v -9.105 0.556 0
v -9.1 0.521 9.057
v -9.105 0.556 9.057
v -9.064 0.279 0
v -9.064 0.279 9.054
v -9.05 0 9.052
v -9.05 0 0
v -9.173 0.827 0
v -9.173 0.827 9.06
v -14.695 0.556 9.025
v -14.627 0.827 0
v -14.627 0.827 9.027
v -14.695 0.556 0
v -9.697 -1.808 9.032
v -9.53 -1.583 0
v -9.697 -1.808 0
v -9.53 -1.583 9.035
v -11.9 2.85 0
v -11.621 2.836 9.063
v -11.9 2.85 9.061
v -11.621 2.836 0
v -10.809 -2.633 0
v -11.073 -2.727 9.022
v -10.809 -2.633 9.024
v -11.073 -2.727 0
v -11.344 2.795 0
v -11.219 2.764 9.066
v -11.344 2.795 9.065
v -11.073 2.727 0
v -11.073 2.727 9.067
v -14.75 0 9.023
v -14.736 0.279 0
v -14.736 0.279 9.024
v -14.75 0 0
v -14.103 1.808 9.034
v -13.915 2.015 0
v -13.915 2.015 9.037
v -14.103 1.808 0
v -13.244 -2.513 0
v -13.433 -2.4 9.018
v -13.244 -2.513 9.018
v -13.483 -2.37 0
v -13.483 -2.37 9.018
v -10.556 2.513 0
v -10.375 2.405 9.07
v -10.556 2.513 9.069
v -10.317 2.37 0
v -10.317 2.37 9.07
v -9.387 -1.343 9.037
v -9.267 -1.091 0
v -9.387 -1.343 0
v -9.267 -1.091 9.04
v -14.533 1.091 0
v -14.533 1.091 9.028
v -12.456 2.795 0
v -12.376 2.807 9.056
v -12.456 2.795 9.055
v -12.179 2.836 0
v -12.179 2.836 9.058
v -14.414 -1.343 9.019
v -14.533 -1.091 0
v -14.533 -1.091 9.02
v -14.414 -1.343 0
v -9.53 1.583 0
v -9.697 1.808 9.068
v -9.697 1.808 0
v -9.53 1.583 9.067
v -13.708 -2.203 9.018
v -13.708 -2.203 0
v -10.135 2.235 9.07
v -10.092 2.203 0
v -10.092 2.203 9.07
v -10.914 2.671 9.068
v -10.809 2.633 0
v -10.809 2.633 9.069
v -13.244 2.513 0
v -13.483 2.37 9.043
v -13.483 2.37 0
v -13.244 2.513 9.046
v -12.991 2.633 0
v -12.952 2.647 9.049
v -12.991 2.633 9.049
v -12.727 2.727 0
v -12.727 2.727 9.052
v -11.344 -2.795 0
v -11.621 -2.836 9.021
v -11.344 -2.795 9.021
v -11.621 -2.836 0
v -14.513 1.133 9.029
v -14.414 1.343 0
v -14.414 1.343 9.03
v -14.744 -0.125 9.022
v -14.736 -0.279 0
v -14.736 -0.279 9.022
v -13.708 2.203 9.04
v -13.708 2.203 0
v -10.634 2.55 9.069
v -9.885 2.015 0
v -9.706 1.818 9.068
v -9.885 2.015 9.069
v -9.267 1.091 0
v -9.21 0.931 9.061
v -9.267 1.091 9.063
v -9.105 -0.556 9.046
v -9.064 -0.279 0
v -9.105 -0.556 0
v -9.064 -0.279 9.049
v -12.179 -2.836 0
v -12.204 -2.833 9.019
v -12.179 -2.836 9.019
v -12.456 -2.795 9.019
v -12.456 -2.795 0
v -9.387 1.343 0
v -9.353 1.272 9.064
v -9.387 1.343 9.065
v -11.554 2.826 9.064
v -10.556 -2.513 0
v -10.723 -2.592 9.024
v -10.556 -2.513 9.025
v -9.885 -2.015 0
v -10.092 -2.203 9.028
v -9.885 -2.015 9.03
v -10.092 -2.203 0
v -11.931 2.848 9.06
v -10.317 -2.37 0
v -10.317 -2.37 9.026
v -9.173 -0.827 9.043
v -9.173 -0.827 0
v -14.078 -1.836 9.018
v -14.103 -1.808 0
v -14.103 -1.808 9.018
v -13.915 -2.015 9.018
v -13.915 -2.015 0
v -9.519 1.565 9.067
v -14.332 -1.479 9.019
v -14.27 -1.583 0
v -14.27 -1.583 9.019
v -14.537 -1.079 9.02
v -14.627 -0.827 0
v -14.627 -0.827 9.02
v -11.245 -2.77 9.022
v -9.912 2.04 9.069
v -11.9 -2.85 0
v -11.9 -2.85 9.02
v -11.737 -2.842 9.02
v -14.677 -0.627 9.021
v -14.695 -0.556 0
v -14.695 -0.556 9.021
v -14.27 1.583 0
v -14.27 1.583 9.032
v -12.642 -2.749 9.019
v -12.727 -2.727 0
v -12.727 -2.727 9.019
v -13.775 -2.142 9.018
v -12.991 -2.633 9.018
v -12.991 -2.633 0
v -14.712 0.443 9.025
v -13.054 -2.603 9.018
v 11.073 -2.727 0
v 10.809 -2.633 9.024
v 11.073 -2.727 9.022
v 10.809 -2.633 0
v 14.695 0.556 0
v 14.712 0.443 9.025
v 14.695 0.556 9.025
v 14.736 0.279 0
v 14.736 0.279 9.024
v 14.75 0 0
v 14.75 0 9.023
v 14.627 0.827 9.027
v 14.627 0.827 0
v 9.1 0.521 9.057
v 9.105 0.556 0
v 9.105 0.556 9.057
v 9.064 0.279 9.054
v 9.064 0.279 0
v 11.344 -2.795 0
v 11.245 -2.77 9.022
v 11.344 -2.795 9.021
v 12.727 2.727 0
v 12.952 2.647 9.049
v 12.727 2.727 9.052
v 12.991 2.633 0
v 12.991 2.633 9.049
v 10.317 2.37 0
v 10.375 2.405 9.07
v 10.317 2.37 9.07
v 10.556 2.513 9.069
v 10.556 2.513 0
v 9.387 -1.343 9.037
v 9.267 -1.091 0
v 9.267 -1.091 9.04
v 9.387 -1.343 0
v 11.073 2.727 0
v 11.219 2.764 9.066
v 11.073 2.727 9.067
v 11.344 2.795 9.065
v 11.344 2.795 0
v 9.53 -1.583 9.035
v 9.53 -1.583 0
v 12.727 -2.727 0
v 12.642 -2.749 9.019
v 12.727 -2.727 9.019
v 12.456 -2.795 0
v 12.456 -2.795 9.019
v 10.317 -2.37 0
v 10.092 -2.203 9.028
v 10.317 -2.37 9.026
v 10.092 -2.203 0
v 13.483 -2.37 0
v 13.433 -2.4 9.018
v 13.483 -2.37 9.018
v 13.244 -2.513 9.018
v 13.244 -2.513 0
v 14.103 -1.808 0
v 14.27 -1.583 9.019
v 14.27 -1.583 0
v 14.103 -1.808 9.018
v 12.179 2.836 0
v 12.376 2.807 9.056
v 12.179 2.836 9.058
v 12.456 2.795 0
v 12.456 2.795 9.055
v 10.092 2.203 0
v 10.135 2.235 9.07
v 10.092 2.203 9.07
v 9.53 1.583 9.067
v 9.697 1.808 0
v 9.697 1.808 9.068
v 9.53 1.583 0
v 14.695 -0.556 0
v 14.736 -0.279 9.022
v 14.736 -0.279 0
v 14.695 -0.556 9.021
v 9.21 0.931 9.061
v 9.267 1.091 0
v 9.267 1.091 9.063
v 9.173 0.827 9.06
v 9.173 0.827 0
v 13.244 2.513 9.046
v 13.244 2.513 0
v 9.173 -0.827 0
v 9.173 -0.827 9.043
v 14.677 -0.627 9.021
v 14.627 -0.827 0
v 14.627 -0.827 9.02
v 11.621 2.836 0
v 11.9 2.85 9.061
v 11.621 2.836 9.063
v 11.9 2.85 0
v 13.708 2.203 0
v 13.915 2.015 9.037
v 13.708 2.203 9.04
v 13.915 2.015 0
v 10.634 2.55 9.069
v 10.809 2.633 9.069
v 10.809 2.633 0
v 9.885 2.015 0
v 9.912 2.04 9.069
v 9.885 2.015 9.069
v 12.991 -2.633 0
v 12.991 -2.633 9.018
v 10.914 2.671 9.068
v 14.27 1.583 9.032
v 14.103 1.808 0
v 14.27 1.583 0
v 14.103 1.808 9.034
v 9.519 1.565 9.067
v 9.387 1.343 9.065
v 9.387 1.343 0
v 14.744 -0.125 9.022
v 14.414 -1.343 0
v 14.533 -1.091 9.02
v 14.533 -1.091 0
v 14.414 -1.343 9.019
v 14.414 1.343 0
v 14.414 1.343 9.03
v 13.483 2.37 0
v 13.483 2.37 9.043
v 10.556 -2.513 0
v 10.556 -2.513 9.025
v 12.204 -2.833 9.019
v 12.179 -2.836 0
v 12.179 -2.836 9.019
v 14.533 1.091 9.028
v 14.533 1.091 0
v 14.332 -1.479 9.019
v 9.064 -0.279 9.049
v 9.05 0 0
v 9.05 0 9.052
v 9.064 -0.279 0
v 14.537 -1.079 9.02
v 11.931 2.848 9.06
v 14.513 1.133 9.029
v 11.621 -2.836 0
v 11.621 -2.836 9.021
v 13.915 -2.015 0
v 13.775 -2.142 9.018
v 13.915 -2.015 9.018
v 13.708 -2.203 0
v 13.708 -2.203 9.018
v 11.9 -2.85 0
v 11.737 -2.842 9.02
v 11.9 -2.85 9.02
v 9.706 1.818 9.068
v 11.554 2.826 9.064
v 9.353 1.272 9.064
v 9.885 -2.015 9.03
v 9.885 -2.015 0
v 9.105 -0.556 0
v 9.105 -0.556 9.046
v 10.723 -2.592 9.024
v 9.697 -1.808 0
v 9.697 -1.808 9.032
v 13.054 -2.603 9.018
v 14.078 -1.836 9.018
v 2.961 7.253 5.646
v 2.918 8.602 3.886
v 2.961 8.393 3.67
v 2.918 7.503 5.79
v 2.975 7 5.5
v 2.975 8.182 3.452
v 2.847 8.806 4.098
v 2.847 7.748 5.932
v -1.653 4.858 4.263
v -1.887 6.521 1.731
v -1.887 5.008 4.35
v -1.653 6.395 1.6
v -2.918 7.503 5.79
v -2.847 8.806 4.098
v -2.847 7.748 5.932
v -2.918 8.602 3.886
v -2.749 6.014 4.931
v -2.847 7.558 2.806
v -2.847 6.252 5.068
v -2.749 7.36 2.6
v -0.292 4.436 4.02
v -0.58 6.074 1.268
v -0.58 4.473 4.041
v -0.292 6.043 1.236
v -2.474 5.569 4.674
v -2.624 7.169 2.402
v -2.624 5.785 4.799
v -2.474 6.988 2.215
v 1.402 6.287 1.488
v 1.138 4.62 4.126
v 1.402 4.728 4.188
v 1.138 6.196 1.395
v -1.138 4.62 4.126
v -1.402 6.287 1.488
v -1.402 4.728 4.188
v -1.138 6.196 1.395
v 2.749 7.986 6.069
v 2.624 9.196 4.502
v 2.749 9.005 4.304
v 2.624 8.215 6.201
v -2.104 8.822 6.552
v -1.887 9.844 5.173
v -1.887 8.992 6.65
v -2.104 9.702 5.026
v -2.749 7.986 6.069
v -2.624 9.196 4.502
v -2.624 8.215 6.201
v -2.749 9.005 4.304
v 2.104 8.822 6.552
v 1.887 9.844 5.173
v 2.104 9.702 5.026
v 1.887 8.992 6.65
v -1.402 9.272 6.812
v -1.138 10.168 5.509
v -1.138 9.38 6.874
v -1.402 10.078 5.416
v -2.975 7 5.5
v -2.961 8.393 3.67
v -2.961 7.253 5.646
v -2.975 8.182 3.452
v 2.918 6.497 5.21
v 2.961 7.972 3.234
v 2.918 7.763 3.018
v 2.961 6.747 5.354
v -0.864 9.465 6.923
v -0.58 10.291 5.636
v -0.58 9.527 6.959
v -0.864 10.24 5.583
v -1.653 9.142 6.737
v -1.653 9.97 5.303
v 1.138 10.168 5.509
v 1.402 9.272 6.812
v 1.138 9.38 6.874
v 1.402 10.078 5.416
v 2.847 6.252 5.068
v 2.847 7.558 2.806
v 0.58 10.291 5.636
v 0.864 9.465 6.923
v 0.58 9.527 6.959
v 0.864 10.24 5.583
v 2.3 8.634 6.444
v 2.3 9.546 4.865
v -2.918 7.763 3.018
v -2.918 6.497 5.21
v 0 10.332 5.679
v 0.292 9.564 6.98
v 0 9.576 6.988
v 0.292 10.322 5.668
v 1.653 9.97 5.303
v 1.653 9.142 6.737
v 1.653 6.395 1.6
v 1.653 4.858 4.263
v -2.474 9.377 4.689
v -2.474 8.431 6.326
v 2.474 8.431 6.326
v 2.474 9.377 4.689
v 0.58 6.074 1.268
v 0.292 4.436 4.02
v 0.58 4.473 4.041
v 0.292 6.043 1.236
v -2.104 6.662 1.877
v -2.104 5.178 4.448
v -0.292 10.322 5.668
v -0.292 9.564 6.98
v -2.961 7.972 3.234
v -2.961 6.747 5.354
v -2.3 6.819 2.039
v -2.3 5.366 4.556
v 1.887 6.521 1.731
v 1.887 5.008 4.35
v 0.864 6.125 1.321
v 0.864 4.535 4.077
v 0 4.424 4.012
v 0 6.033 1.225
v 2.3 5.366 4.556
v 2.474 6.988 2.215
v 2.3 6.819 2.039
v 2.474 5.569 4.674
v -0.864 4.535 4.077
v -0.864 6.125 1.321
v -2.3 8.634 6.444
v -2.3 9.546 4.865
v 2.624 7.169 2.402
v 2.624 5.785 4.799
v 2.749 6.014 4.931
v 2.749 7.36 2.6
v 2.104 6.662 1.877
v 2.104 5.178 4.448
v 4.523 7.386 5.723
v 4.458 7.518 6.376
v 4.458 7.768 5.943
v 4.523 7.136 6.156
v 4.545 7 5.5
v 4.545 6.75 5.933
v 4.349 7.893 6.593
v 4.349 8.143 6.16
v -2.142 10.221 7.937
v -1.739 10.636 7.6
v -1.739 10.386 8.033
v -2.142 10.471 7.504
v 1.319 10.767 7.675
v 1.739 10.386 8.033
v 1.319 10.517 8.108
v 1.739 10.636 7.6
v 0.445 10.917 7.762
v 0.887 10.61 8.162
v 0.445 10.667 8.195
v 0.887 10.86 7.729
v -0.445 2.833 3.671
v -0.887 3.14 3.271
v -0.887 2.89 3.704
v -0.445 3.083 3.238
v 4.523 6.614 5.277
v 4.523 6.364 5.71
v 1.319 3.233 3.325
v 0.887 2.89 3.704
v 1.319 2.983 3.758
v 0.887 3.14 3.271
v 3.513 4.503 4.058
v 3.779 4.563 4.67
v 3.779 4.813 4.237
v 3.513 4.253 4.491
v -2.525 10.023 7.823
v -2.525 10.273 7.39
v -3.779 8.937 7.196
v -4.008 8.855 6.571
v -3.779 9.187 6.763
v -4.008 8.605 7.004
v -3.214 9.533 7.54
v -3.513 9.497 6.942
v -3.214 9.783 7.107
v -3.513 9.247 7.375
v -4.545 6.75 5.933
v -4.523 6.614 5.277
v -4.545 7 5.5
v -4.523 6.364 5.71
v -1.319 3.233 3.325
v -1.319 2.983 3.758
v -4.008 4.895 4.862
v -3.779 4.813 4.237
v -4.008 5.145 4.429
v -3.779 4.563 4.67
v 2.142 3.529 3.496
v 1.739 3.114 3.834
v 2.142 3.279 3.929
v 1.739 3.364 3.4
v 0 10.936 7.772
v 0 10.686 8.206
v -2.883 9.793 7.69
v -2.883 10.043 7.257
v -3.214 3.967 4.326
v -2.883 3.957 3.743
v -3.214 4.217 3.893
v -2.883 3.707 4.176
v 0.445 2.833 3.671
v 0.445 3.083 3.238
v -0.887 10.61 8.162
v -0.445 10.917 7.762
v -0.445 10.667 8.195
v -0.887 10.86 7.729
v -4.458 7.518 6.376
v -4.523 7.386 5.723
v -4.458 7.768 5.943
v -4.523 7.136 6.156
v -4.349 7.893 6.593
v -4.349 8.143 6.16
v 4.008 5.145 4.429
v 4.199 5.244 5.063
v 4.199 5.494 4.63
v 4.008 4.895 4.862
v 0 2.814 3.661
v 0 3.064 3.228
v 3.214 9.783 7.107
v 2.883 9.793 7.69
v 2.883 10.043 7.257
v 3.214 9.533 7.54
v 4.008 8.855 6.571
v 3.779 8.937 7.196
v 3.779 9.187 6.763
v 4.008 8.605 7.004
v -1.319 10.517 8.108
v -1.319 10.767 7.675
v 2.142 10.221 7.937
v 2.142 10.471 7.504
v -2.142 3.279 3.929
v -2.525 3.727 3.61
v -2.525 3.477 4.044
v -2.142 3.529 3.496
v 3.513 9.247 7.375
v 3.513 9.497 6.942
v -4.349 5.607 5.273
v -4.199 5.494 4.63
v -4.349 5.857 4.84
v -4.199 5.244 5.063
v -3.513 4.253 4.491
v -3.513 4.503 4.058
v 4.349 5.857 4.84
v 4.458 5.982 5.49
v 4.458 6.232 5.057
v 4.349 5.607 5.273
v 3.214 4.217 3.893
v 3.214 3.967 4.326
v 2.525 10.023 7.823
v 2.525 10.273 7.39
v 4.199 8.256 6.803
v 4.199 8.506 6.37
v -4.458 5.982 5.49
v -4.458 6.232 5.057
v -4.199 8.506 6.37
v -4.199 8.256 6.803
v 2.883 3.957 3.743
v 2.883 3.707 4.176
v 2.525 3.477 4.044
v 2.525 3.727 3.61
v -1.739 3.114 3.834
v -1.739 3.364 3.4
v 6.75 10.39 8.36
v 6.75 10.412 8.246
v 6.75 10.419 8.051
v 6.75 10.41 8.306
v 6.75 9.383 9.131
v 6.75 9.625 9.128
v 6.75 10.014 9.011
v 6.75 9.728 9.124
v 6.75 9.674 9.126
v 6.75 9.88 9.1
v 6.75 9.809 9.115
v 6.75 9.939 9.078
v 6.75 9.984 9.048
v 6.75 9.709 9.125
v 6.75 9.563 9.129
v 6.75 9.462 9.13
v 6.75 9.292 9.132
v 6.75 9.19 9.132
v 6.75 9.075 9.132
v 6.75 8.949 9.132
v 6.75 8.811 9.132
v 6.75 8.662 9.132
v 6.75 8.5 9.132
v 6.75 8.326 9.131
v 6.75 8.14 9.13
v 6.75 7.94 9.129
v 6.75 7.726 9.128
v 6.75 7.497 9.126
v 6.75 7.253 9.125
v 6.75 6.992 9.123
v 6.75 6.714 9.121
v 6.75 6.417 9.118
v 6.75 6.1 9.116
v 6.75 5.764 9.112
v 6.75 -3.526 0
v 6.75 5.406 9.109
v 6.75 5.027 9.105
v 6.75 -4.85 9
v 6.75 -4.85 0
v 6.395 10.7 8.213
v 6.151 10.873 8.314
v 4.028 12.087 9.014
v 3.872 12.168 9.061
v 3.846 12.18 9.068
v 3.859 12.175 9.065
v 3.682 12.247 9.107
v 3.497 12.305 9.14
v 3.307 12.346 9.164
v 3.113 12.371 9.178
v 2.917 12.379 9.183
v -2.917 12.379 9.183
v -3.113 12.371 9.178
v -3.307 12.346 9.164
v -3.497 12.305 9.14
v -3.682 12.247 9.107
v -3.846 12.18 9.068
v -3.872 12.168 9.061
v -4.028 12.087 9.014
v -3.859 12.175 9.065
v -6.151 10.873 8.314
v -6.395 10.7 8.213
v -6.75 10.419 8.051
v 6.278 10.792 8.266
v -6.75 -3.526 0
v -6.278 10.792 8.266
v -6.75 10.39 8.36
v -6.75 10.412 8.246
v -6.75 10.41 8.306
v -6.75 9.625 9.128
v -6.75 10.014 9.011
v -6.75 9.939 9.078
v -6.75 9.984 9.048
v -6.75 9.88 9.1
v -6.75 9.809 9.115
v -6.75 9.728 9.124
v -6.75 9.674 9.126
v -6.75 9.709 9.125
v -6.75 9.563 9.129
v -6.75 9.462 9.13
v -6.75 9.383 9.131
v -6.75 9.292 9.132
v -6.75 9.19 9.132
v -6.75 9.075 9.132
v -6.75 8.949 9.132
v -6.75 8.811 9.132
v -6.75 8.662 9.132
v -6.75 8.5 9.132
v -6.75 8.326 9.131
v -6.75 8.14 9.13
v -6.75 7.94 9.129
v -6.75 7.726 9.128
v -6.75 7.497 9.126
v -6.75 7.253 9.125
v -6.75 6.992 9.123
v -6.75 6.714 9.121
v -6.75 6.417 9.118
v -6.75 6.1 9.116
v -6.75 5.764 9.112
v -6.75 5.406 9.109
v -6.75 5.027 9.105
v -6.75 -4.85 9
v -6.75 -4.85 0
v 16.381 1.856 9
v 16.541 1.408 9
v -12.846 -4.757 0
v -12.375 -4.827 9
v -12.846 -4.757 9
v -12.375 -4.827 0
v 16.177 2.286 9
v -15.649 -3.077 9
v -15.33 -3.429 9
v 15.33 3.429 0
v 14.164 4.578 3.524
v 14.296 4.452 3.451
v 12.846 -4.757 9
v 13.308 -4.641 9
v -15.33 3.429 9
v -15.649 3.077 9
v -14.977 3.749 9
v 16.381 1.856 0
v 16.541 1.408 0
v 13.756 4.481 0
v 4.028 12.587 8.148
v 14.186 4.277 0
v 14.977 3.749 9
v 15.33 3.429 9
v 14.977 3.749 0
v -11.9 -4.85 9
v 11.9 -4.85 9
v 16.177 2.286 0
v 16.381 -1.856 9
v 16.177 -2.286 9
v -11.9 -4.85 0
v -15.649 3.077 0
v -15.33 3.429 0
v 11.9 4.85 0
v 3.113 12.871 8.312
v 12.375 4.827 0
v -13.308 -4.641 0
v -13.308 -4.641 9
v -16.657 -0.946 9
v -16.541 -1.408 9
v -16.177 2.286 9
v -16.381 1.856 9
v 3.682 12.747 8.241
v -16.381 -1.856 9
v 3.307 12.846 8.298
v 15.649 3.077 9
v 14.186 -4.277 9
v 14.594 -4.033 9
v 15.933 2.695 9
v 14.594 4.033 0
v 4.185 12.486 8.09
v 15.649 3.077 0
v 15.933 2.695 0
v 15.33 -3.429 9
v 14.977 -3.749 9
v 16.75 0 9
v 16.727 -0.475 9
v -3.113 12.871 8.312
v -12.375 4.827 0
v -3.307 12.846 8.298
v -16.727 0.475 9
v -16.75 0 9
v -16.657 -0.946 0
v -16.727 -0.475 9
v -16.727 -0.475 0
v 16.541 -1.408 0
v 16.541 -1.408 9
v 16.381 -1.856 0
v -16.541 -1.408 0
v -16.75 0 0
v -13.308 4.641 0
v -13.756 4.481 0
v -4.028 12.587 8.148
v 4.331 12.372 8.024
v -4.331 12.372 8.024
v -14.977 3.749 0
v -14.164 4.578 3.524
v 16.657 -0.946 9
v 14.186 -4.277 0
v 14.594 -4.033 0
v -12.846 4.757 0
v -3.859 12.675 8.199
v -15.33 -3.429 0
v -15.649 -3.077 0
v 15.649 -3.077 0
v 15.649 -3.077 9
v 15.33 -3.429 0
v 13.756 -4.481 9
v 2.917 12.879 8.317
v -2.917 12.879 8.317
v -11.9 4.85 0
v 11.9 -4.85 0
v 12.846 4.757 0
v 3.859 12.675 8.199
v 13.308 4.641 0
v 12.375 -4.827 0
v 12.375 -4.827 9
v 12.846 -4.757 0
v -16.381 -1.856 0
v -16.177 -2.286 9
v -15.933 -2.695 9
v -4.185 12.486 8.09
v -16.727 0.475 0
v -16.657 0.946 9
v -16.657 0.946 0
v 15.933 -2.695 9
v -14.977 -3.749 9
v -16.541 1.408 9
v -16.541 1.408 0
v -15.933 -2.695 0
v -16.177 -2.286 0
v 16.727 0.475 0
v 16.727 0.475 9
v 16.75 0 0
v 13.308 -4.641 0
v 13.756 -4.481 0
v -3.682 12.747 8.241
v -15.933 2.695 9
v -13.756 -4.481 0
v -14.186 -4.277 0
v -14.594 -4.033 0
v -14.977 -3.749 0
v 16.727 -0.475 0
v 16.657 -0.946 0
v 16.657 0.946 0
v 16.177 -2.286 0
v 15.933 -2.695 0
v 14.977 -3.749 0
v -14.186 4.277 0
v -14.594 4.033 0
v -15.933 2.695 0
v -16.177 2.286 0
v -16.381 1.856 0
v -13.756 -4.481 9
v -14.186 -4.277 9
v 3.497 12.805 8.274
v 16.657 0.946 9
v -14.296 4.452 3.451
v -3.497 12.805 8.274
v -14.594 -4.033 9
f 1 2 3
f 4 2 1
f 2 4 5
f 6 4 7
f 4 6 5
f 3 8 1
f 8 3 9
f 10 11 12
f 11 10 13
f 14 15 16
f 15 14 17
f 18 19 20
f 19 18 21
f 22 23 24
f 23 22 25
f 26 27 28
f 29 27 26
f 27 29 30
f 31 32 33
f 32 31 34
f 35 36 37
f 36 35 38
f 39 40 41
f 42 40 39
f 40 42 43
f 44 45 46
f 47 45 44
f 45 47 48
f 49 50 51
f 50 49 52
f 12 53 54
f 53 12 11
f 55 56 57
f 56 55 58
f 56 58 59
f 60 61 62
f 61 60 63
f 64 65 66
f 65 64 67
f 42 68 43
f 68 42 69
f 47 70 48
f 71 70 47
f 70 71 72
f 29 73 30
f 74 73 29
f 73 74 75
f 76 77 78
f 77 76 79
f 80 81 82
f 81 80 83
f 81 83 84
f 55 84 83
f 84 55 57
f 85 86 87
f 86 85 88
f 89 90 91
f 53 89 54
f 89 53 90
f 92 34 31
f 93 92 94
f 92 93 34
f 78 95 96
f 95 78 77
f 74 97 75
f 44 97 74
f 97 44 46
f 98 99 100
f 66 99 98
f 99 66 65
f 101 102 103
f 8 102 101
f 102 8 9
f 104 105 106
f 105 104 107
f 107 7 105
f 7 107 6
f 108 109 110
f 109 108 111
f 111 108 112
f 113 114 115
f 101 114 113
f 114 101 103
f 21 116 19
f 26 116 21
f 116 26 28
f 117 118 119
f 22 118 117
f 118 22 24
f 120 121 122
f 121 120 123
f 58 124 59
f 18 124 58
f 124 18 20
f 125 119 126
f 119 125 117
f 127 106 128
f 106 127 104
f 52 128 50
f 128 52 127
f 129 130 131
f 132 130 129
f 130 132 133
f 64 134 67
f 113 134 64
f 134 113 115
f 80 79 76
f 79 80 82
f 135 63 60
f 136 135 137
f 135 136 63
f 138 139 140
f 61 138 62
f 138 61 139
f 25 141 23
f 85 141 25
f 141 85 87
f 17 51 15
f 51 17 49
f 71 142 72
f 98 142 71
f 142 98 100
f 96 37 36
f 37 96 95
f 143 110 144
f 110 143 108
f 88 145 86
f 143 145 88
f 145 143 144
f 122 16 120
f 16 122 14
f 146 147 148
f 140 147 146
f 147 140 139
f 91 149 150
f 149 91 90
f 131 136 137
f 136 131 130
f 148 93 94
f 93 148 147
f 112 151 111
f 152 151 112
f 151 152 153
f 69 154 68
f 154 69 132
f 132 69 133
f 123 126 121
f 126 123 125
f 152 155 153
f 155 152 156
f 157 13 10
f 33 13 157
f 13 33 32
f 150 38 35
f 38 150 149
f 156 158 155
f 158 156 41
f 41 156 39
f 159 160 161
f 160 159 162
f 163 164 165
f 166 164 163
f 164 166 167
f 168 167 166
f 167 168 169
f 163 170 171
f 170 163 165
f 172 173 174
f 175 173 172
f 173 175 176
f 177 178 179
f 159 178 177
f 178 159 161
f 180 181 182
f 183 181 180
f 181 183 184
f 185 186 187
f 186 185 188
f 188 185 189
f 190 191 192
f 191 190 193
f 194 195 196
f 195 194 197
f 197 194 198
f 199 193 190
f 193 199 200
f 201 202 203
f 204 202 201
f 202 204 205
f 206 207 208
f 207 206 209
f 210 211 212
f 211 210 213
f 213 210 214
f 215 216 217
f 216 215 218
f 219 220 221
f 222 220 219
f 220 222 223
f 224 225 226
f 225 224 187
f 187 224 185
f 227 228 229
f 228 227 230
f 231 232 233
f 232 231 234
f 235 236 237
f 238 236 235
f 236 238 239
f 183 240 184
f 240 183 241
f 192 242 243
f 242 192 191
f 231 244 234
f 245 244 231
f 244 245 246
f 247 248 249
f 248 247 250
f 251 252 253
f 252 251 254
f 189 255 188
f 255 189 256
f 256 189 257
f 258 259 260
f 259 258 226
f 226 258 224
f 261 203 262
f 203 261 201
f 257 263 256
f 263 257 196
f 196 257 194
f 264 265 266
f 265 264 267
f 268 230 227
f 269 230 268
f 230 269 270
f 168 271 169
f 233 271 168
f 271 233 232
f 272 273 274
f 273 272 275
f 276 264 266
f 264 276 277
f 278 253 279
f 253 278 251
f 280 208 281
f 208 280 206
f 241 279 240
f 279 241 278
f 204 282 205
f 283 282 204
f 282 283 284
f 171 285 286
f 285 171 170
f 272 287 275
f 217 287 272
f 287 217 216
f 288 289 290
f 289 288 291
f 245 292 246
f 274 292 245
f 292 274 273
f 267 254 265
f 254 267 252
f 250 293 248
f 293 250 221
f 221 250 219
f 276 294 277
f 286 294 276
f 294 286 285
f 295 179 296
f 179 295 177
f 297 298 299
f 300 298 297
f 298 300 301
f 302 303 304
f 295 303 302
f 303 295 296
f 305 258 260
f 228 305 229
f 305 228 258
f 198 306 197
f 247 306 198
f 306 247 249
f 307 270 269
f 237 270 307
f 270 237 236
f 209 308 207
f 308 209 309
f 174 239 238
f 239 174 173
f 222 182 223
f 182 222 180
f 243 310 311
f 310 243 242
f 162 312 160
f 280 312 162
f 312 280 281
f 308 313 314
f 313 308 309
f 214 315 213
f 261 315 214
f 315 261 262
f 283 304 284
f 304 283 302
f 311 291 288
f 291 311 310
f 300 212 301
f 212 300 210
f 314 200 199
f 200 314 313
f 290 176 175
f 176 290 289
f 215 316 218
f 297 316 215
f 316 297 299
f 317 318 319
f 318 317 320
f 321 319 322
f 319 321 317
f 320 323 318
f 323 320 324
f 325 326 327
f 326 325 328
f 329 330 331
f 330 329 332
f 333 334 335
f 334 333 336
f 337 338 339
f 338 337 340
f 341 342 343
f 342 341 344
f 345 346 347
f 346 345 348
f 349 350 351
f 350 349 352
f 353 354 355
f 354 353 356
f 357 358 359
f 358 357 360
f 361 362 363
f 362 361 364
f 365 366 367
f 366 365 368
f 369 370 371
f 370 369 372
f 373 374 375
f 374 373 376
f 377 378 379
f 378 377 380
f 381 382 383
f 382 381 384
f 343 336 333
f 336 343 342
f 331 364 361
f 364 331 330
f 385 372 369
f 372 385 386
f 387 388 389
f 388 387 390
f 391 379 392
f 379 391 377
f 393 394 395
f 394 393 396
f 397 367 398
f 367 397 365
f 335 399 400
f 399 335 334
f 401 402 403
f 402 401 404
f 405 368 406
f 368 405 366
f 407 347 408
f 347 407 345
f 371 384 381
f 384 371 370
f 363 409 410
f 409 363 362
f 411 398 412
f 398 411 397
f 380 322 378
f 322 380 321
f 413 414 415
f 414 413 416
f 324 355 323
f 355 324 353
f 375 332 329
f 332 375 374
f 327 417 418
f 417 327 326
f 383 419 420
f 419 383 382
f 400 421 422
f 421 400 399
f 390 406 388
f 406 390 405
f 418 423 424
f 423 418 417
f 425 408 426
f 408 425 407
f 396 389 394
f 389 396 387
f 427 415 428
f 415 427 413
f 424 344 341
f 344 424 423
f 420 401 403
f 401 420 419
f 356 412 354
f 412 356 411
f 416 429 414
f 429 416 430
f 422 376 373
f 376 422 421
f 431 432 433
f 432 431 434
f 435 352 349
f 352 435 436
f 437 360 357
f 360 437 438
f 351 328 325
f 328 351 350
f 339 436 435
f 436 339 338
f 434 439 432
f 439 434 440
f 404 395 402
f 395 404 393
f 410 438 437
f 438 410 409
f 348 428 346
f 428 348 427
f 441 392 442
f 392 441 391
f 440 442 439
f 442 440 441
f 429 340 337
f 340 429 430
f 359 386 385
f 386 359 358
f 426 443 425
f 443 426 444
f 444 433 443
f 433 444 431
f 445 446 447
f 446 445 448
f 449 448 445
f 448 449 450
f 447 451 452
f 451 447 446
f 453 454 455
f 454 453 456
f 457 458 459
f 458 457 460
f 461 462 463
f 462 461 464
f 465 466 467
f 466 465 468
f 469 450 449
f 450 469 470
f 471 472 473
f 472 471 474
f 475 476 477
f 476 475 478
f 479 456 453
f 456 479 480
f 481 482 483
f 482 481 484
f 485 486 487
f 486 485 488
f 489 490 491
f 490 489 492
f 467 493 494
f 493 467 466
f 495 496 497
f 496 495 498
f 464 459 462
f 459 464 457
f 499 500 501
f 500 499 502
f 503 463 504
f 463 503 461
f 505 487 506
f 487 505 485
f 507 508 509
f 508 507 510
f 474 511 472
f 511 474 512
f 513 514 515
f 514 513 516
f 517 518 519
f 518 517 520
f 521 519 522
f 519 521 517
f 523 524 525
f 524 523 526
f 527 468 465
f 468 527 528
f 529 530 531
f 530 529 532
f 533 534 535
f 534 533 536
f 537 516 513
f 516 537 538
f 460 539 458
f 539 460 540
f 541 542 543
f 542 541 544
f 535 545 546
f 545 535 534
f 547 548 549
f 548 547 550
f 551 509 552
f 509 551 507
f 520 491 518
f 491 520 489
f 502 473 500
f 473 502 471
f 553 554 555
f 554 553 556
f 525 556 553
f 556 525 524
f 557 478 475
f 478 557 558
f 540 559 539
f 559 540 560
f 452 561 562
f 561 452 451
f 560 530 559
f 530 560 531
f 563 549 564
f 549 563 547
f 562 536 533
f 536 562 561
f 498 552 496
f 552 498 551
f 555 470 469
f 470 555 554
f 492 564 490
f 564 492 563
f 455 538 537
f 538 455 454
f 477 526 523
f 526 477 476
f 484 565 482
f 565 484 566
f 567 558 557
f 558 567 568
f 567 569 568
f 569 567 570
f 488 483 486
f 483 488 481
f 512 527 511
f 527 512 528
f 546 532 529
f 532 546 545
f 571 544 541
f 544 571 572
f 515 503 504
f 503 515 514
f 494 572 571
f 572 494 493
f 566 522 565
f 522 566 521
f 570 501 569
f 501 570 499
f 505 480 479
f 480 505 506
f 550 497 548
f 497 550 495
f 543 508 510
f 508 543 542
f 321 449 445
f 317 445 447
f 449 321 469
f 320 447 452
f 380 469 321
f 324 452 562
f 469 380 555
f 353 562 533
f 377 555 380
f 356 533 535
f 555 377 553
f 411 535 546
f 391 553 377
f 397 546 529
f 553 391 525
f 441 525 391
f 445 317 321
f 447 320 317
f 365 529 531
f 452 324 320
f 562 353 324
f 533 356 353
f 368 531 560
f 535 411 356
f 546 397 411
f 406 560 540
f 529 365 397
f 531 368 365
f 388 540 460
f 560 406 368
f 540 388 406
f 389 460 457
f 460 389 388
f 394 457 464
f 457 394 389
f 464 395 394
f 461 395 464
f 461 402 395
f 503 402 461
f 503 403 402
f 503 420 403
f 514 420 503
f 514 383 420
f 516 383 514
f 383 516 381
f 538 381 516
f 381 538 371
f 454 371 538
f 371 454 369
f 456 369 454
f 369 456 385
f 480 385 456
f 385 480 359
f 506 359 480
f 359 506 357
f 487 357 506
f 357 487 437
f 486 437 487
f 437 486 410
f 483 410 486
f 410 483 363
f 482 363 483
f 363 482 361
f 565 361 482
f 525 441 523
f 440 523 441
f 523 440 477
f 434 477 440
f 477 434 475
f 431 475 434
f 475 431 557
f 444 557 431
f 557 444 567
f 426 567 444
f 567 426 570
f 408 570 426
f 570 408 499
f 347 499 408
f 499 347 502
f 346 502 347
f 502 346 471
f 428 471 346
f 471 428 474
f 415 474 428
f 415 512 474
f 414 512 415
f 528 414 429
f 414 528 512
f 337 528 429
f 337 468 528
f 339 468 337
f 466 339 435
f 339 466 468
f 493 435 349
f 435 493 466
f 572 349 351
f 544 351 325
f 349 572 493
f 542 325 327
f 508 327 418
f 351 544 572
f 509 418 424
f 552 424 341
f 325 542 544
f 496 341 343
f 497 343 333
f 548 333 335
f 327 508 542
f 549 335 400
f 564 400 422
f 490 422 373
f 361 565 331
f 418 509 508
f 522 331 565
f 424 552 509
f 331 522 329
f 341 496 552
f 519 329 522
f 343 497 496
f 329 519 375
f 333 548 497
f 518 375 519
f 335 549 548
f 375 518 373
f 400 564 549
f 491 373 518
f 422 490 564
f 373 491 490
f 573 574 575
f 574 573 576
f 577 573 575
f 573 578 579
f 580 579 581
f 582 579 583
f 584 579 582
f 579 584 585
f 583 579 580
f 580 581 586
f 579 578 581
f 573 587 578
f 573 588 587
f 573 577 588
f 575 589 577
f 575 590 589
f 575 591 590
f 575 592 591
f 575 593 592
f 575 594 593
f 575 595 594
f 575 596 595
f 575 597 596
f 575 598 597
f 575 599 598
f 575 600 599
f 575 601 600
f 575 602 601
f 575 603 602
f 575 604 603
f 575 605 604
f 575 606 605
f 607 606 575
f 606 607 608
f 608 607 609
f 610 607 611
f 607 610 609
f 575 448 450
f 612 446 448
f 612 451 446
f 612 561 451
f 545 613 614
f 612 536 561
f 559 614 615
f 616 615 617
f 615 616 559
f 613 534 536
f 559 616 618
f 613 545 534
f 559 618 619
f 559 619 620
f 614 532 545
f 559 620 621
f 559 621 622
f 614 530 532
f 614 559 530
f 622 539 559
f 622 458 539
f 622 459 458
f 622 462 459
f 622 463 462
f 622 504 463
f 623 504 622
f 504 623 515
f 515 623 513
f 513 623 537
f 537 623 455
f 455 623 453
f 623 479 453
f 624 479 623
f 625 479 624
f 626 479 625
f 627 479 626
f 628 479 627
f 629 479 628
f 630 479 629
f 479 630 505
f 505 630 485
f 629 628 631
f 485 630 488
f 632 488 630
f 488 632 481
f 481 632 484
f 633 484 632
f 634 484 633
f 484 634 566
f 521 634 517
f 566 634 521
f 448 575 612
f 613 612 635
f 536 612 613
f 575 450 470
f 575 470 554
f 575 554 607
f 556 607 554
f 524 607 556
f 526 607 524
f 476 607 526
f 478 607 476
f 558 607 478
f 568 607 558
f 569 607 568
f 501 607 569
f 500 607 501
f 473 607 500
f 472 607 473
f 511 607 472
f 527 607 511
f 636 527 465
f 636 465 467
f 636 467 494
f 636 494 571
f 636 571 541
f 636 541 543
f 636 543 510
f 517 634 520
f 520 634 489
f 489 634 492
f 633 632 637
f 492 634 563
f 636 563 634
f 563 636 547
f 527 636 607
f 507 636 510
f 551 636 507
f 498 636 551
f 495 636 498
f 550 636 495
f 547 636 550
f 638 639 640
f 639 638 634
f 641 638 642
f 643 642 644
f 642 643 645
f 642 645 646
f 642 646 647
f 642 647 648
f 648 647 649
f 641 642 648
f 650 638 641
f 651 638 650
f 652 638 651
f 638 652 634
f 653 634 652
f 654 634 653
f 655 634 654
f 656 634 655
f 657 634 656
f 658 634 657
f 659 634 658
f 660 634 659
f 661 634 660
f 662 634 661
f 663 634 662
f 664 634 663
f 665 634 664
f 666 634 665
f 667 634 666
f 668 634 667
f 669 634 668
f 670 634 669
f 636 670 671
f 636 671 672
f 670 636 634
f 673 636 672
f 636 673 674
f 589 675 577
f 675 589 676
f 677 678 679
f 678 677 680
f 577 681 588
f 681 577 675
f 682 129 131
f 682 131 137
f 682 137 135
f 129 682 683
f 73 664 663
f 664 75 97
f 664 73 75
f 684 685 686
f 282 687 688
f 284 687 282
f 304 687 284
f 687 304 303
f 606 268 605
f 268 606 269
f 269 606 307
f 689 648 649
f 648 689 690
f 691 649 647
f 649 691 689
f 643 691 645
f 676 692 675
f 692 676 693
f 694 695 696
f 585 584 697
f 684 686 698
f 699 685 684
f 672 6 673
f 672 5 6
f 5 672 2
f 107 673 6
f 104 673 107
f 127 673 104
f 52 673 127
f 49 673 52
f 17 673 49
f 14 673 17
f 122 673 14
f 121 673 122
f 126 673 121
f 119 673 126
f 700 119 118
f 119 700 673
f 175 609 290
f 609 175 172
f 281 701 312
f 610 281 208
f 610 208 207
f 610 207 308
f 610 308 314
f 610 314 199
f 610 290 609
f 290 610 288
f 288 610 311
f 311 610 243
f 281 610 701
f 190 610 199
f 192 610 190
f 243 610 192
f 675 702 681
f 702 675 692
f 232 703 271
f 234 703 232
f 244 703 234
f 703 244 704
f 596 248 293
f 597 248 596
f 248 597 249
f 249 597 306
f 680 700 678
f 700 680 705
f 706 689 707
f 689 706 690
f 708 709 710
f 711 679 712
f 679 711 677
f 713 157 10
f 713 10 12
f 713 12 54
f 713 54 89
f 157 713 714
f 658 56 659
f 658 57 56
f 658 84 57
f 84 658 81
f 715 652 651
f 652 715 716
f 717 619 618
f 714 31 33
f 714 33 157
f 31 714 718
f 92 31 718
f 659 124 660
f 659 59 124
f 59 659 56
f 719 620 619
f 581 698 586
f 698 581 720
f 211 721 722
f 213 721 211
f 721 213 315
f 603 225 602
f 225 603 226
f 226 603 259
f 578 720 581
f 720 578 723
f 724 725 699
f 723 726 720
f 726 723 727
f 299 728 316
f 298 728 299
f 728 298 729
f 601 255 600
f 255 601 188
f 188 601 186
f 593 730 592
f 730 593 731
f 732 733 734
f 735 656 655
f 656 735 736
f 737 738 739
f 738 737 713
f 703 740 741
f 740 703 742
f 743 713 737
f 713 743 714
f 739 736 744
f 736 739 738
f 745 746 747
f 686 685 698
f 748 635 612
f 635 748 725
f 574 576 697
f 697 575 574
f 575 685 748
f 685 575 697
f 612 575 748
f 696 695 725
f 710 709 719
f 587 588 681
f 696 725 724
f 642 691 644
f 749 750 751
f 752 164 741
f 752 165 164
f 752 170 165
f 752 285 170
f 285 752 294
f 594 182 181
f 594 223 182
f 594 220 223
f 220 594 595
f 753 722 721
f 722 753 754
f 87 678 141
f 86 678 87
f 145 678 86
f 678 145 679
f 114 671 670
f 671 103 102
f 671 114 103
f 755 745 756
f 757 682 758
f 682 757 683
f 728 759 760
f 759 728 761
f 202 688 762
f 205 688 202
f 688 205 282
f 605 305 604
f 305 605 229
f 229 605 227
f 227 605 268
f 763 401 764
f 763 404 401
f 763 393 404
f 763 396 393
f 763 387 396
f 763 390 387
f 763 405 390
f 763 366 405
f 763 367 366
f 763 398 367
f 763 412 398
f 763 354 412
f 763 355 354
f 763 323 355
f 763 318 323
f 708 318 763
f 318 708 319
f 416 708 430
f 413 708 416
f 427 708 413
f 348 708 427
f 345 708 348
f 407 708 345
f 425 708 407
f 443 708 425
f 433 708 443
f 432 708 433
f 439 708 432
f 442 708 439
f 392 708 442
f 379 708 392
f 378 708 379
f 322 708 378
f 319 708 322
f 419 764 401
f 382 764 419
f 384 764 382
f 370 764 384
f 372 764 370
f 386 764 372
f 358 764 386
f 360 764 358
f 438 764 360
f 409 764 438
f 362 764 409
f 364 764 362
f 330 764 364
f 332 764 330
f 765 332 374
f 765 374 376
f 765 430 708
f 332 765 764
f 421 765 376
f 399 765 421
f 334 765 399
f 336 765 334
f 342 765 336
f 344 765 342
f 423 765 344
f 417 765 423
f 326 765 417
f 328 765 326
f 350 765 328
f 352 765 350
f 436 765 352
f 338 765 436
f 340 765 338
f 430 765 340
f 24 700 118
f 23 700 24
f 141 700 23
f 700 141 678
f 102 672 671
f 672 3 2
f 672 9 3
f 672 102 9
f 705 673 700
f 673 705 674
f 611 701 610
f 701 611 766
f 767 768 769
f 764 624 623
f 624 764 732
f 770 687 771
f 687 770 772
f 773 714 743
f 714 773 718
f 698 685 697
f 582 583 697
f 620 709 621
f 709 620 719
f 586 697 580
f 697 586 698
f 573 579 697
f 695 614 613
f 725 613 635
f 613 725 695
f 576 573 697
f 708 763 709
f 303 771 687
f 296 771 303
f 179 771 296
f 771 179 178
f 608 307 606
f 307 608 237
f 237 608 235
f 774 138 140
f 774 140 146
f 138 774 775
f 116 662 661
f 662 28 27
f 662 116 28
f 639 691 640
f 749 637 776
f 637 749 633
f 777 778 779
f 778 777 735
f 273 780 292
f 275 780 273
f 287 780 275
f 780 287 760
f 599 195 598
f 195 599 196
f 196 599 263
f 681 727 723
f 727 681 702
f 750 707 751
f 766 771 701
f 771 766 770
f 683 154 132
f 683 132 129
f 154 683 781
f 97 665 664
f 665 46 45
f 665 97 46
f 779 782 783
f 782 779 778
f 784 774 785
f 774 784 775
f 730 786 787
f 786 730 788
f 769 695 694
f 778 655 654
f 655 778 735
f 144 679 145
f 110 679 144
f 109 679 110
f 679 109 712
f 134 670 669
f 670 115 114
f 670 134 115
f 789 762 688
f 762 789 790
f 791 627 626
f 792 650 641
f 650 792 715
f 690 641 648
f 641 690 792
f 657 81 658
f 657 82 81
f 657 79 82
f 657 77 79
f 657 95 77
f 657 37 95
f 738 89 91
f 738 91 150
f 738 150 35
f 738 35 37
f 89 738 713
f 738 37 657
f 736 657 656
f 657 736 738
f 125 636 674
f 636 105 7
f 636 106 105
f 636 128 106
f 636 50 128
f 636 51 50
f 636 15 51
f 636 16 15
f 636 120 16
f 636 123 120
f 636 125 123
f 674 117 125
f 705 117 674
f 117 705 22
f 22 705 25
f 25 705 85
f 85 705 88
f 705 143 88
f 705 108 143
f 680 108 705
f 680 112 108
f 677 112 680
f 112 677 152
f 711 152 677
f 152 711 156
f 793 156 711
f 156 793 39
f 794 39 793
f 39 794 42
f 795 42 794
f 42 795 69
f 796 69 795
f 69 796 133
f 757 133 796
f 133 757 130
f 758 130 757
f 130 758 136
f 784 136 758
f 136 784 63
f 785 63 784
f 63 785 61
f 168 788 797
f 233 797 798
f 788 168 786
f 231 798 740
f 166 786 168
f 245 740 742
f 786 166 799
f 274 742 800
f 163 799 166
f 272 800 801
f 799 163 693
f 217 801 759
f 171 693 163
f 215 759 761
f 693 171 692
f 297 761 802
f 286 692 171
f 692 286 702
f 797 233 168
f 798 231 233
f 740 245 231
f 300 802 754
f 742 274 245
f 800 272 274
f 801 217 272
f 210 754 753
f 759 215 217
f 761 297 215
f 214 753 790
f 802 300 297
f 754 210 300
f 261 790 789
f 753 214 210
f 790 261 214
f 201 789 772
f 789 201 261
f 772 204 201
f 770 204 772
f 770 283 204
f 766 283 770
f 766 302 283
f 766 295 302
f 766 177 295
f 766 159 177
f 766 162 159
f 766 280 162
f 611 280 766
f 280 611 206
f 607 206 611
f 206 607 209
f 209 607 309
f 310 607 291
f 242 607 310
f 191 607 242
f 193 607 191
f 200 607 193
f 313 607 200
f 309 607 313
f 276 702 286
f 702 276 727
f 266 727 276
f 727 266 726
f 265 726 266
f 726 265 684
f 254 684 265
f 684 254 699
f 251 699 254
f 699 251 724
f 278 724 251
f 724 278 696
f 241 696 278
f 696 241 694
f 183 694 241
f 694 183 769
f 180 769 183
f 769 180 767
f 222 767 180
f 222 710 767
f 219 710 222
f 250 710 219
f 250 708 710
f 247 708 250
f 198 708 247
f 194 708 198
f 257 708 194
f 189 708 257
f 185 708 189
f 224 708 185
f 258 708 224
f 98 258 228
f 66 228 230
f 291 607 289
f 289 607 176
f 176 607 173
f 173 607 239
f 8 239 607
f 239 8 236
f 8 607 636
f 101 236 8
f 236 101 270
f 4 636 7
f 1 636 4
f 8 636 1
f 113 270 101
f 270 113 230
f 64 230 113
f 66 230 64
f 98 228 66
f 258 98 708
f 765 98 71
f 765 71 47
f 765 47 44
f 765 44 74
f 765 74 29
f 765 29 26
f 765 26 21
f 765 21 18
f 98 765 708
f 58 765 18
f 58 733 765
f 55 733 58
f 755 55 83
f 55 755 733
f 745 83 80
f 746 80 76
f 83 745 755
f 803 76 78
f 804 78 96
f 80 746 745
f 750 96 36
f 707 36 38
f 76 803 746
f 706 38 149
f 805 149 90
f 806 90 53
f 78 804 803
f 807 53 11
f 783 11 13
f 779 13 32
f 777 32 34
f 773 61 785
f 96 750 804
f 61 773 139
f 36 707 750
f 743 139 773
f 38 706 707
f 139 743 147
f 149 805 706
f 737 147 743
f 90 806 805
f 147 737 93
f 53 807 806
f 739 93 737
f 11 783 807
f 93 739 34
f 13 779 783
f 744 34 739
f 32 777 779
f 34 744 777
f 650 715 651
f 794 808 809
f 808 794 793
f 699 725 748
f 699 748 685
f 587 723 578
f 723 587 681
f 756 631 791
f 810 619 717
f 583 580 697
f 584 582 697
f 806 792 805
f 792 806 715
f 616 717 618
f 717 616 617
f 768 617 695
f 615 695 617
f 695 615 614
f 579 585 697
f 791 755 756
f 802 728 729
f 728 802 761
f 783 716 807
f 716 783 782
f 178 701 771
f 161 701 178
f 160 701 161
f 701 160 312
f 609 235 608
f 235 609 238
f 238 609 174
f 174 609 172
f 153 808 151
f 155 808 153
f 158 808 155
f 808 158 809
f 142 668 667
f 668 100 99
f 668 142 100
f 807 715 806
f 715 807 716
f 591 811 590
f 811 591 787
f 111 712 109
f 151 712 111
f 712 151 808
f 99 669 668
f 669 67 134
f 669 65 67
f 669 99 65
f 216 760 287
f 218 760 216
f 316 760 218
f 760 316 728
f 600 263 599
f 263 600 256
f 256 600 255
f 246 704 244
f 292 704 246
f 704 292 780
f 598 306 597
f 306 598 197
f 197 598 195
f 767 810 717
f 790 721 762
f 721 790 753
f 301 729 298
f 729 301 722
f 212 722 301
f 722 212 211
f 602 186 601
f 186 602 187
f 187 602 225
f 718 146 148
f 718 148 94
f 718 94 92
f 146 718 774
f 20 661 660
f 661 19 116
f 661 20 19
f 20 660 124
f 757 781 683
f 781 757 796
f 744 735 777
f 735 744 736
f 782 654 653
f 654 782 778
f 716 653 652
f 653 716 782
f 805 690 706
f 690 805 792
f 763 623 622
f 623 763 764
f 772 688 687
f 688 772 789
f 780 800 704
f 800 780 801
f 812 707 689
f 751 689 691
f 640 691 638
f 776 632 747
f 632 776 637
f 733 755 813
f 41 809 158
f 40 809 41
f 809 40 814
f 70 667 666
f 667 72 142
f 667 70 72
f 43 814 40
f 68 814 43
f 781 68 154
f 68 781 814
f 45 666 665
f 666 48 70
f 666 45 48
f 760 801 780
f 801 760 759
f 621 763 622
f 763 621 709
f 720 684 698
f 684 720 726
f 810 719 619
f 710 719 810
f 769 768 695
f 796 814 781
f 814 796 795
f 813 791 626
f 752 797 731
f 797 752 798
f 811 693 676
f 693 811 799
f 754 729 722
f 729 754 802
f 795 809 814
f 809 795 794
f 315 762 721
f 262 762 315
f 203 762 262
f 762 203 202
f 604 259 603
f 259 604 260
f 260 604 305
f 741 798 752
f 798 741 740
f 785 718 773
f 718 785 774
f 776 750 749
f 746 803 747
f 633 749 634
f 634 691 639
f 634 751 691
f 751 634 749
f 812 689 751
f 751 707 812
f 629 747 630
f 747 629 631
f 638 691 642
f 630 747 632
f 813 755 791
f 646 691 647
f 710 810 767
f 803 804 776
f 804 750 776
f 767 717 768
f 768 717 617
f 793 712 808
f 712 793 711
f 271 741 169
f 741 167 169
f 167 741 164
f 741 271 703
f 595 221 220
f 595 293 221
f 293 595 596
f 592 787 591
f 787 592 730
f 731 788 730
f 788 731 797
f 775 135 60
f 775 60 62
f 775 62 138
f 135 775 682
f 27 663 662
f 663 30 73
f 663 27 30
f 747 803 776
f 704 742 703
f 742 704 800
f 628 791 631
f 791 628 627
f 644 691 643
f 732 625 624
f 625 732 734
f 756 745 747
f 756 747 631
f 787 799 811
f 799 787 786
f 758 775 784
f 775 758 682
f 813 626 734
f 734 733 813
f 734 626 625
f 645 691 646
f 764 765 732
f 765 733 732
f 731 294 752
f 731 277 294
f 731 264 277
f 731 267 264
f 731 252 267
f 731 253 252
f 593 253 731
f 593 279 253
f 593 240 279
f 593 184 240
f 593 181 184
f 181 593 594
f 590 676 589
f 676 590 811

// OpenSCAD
/* [MOUNT] */
WIDTH = 29.5;
MOUNT_DIAMETER = 5.7;
MOUNT_THICKNESS = 4;
MOUNT_HEIGHT= 9;

/* [BRIDGE] */
BRIDGE_WIDTH = WIDTH;
MIN_BRIDGE_WIDTH = WIDTH/3;
BRIDGE_HEIGHT = 13;  // MOUNT_HEIGHT
BRIDGE_ANGLE = 30;
BRIDGE_X_OFFSET = 7;
BRIDGE_Z_OFFSET = 5;
BRIDGE_THICKNESS = 1;
//HORIZONTAL_BRIDGE = false;

/* [SMA] */
SMA_HOLE_DIAMETER = 5.95;
SMA_OUTLINER_DIAMETER = 9.09;
SMA_CUTOUT_WIDTH = WIDTH - 4*MOUNT_THICKNESS;
SMA_CUTOUT_HEIGHT = 30;

/* [META] */
HULL = true;           // [true, false]
CORNERS_DIAMETER = 4;   // [16:0.5:40]
FN = 64;               // [0:32:256]  

/* [HIDDEN] */
$fn = FN;

sma_holder();

module sma_holder(){
    
    difference(){
        if(HULL){            
            hull(){
                side_mounts();
                bridge_with_mount();            
            }
        }
        else{
            union(){
                side_mounts();
                bridge_with_mount();                            
            }
        }
        
        side_poles();
        
        translate([0,BRIDGE_X_OFFSET, BRIDGE_THICKNESS/2 + BRIDGE_Z_OFFSET])
        rotate([BRIDGE_ANGLE,0,0])       
        union(){
            sma_hole();
            sma_outliner();                 
            sma_plate();        
        }
    }

//    translate([0,BRIDGE_X_OFFSET, BRIDGE_THICKNESS/2 + BRIDGE_Z_OFFSET])    
//    rotate([BRIDGE_ANGLE,0,0])       
//    sma_plate();    
}

module side_mounts(){
    x_offset = WIDTH/2 - MOUNT_DIAMETER/2;
    
    translate([-x_offset,0,0])    
    mount();

    translate([x_offset,0,0])
    mount();    
}

module mount(){
    outside_diameter = MOUNT_DIAMETER + MOUNT_THICKNESS;    
    
    translate([0,0, MOUNT_HEIGHT/2])
    cylinder(MOUNT_HEIGHT, outside_diameter/2, outside_diameter/2, true);
}

module side_poles(){
    x_offset = WIDTH/2 - MOUNT_DIAMETER/2;
    
    translate([-x_offset,0,0])    
    pole();

    translate([x_offset,0,0])
    pole();       
}

module pole(){
    outside_diameter = MOUNT_DIAMETER + MOUNT_THICKNESS;    
    
    translate([0,0, MOUNT_HEIGHT/2])
    cylinder(MOUNT_HEIGHT*2, MOUNT_DIAMETER/2, MOUNT_DIAMETER/2, true);        
}

module bridge_with_mount(){
//    if(BRIDGE_X_OFFSET>0){
//        translate([0,0, BRIDGE_THICKNESS/2 + BRIDGE_Z_OFFSET])            
//        bridge(BRIDGE_WIDTH, BRIDGE_WIDTH, BRIDGE_X_OFFSET, BRIDGE_THICKNESS);    
//    }
    
    translate([0,BRIDGE_X_OFFSET, BRIDGE_THICKNESS/2 + BRIDGE_Z_OFFSET])
    rotate([BRIDGE_ANGLE,0,0])    
    bridge(BRIDGE_WIDTH, MIN_BRIDGE_WIDTH, BRIDGE_HEIGHT, BRIDGE_THICKNESS);  
}

module bridge(wider_width, min_width, height, thickness){
    rounded_corners_trapeze(wider_width, min_width, height, thickness, CORNERS_DIAMETER);
}

module sma_hole(){
    cylinder(BRIDGE_THICKNESS*10, SMA_HOLE_DIAMETER/2, SMA_HOLE_DIAMETER/2, true);            
}

module sma_outliner(){
    outliner_thickness = BRIDGE_THICKNESS*10;
    translate([0,0,outliner_thickness/2])
    cylinder(outliner_thickness, SMA_OUTLINER_DIAMETER/2, SMA_OUTLINER_DIAMETER/2, true);            
}

module sma_plate(){
    outliner_thickness = BRIDGE_THICKNESS*20;
    translate([0,0,outliner_thickness/2+BRIDGE_THICKNESS/2])
    cube([SMA_CUTOUT_WIDTH, SMA_CUTOUT_HEIGHT, outliner_thickness], true);            
}


module rounded_corners_trapeze(bottom_width, upper_width, height, depth, corner_curve){
    x_translate = bottom_width-corner_curve;
    y_translate = height-corner_curve;     
    
    x_translate2 = upper_width-corner_curve;
    
    
    hull(){
            translate([-x_translate/2, -y_translate/2, 0])
            cylinder(depth,corner_curve/2, corner_curve/2, true);    
            
            translate([-x_translate2/2, y_translate/2, 0])
            cylinder(depth,corner_curve/2, corner_curve/2, true);

            translate([x_translate2/2, y_translate/2, 0])
            cylinder(depth,corner_curve/2, corner_curve/2, true);        
            
            translate([x_translate/2, -y_translate/2, 0])
            cylinder(depth,corner_curve/2, corner_curve/2, true);        
    }        
}
